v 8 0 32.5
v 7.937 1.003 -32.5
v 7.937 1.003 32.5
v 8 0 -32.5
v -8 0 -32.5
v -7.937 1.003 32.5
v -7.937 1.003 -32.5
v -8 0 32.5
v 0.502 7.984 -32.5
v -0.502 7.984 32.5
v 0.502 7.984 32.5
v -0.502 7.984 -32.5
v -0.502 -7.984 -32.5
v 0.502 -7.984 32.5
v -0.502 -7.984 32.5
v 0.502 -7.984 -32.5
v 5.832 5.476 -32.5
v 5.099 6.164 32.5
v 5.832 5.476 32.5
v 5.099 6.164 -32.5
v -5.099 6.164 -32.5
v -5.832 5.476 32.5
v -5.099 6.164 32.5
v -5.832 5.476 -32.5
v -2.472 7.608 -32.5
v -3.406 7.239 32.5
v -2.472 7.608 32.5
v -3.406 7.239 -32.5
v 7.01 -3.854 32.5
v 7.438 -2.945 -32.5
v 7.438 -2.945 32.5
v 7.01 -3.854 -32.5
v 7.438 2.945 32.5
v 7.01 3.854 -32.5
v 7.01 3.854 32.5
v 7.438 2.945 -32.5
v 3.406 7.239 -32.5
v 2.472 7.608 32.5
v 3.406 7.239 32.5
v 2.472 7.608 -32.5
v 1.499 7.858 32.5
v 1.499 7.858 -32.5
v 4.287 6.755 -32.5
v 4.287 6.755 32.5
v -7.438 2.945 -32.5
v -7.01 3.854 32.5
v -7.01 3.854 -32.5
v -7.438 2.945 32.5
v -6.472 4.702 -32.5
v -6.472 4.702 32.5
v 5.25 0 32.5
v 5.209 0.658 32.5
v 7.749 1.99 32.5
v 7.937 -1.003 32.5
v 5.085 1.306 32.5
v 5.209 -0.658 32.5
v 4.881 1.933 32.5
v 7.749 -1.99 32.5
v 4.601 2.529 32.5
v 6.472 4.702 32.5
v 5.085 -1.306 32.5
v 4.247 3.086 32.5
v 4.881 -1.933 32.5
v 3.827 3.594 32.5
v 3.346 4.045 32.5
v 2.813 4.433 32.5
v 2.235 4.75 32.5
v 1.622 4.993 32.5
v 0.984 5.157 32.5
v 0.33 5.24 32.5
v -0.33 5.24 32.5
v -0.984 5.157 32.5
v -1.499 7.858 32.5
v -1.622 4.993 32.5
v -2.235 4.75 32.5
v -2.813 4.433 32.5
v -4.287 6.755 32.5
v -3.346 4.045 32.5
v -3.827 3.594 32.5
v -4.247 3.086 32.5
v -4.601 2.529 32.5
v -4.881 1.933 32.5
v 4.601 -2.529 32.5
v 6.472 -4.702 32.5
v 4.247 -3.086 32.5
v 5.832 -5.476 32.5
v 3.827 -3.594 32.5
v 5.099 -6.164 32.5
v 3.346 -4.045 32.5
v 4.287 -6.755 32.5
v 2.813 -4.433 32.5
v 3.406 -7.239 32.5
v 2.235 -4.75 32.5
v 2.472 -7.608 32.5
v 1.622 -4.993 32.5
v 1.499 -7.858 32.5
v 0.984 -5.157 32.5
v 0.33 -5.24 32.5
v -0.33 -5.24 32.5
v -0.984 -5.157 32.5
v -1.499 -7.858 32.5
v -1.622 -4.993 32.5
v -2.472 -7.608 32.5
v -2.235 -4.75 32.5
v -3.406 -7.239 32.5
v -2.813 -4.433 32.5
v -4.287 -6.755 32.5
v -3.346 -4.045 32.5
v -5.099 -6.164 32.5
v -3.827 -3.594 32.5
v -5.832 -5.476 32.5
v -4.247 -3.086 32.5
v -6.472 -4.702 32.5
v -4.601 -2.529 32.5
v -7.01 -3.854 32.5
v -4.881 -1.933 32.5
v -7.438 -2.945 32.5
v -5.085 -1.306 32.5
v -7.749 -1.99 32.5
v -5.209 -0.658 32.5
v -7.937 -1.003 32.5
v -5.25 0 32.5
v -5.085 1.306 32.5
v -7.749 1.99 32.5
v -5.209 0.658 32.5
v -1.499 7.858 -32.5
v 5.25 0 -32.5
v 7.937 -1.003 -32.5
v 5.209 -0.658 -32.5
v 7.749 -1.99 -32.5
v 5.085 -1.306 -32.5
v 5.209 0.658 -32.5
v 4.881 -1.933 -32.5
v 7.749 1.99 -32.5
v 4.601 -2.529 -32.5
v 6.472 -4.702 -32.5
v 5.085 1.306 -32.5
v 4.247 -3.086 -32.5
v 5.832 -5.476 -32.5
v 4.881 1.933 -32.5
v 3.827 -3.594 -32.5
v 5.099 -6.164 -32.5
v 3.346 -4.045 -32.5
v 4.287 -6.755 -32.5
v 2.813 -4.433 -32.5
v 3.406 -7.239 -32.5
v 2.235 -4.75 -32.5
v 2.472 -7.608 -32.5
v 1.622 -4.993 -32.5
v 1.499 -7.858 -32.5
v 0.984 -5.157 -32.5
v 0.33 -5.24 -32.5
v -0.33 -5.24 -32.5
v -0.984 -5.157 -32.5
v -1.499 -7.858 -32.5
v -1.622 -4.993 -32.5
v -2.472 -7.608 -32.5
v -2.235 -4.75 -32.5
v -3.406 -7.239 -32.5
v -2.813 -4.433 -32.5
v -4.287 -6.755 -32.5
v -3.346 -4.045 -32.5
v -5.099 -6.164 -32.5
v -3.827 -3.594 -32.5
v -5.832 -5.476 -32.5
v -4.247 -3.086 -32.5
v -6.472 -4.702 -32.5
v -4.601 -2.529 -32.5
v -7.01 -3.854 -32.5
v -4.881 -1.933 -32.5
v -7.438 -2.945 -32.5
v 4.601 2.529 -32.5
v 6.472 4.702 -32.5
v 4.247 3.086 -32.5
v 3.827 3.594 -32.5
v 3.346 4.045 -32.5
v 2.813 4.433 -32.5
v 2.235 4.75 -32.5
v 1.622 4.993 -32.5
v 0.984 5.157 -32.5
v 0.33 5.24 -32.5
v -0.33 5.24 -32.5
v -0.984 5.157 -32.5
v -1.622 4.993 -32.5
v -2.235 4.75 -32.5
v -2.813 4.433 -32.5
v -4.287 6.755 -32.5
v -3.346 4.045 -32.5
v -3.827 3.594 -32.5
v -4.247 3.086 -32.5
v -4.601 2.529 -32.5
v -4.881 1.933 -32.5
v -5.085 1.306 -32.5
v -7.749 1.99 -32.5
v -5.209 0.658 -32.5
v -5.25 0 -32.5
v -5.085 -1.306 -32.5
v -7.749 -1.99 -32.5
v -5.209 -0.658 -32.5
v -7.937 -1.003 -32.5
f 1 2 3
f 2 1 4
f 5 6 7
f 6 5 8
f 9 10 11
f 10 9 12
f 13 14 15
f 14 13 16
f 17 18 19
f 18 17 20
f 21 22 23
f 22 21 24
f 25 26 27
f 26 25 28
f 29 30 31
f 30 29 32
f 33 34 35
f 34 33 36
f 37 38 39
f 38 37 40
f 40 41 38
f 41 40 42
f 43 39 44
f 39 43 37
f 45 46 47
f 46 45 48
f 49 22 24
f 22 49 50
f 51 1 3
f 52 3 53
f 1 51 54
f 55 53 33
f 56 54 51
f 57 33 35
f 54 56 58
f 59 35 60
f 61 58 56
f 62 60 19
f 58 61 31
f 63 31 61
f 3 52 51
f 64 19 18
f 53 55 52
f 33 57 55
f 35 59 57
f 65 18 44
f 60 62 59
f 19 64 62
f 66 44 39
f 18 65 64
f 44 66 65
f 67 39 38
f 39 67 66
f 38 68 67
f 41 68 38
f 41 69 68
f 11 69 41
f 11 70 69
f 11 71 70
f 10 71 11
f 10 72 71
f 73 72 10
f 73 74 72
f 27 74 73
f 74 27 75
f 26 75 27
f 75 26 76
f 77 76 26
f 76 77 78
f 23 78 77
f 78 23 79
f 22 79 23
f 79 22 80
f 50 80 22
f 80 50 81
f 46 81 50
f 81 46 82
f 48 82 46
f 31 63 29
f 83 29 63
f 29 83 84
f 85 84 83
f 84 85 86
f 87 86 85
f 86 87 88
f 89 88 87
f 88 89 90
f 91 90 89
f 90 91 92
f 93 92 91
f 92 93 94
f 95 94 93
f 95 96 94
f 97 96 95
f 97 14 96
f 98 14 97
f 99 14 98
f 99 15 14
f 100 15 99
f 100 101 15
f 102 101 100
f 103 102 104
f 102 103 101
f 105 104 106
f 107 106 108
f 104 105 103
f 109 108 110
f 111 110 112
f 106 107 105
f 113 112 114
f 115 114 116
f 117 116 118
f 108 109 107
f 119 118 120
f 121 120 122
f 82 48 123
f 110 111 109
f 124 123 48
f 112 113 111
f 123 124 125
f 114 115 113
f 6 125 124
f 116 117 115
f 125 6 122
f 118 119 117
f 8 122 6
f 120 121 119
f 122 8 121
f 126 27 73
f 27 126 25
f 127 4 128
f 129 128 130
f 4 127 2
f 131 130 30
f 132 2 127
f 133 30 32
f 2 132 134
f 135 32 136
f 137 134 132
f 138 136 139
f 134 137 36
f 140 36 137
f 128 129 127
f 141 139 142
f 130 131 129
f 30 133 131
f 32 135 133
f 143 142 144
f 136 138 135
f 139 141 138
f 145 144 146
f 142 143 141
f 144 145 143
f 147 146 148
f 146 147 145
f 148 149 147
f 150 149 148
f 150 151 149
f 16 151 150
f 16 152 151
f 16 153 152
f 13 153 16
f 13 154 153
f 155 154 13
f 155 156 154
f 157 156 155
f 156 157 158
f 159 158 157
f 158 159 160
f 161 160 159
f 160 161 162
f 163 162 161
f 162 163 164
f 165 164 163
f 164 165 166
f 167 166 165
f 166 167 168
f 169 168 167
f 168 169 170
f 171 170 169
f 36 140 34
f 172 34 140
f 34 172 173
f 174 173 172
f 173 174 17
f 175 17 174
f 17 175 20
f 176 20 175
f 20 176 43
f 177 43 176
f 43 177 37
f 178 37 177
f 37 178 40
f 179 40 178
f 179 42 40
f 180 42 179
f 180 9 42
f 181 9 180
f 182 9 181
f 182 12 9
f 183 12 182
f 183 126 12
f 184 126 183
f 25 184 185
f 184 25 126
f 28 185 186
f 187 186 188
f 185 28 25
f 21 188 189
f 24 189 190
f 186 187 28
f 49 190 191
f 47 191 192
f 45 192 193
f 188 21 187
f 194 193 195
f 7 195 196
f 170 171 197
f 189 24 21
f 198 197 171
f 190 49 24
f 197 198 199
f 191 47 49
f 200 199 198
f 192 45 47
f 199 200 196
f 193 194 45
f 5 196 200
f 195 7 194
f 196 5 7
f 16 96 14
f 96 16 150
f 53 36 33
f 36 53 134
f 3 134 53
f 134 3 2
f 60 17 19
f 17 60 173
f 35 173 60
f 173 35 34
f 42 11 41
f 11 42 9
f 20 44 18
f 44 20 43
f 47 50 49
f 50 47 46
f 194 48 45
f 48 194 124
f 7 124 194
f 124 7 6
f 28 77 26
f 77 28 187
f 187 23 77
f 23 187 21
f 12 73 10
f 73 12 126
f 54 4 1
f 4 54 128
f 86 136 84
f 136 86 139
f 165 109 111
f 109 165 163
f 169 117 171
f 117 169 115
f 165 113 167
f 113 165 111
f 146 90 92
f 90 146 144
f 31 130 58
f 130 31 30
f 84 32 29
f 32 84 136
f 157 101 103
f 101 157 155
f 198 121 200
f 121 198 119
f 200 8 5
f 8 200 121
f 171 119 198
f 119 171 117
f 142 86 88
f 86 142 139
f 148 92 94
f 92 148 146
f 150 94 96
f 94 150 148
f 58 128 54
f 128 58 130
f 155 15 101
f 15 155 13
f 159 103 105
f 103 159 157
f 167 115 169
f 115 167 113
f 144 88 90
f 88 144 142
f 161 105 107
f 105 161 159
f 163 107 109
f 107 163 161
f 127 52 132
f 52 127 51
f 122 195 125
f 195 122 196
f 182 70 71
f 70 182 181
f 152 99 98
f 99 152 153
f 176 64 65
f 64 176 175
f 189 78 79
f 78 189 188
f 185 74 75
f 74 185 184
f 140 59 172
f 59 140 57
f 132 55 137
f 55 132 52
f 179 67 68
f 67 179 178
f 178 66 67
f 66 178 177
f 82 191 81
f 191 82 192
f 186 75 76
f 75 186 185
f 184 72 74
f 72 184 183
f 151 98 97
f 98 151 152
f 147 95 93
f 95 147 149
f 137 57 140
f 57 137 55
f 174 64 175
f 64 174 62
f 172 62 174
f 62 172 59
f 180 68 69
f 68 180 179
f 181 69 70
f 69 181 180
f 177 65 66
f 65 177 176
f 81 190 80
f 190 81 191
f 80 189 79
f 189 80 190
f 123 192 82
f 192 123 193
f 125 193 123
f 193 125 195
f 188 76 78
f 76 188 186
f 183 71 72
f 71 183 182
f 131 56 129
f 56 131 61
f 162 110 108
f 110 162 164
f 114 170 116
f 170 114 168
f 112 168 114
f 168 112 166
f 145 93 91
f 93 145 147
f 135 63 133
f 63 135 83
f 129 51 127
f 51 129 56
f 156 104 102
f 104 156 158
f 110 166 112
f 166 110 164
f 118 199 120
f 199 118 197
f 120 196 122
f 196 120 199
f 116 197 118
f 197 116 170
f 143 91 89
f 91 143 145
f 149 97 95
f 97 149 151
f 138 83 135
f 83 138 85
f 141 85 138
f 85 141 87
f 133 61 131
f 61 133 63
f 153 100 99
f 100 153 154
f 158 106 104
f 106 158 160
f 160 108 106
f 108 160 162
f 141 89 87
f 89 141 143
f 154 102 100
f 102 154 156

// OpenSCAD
$fn = 50;


difference() {
	union() {
		translate(v = [0, 0, -32.5000000000]) {
			cylinder(h = 65, r = 8.0000000000);
		}
	}
	union() {
		translate(v = [0, 0, -100.0000000000]) {
			cylinder(h = 200, r = 5.2500000000);
		}
	}
}
